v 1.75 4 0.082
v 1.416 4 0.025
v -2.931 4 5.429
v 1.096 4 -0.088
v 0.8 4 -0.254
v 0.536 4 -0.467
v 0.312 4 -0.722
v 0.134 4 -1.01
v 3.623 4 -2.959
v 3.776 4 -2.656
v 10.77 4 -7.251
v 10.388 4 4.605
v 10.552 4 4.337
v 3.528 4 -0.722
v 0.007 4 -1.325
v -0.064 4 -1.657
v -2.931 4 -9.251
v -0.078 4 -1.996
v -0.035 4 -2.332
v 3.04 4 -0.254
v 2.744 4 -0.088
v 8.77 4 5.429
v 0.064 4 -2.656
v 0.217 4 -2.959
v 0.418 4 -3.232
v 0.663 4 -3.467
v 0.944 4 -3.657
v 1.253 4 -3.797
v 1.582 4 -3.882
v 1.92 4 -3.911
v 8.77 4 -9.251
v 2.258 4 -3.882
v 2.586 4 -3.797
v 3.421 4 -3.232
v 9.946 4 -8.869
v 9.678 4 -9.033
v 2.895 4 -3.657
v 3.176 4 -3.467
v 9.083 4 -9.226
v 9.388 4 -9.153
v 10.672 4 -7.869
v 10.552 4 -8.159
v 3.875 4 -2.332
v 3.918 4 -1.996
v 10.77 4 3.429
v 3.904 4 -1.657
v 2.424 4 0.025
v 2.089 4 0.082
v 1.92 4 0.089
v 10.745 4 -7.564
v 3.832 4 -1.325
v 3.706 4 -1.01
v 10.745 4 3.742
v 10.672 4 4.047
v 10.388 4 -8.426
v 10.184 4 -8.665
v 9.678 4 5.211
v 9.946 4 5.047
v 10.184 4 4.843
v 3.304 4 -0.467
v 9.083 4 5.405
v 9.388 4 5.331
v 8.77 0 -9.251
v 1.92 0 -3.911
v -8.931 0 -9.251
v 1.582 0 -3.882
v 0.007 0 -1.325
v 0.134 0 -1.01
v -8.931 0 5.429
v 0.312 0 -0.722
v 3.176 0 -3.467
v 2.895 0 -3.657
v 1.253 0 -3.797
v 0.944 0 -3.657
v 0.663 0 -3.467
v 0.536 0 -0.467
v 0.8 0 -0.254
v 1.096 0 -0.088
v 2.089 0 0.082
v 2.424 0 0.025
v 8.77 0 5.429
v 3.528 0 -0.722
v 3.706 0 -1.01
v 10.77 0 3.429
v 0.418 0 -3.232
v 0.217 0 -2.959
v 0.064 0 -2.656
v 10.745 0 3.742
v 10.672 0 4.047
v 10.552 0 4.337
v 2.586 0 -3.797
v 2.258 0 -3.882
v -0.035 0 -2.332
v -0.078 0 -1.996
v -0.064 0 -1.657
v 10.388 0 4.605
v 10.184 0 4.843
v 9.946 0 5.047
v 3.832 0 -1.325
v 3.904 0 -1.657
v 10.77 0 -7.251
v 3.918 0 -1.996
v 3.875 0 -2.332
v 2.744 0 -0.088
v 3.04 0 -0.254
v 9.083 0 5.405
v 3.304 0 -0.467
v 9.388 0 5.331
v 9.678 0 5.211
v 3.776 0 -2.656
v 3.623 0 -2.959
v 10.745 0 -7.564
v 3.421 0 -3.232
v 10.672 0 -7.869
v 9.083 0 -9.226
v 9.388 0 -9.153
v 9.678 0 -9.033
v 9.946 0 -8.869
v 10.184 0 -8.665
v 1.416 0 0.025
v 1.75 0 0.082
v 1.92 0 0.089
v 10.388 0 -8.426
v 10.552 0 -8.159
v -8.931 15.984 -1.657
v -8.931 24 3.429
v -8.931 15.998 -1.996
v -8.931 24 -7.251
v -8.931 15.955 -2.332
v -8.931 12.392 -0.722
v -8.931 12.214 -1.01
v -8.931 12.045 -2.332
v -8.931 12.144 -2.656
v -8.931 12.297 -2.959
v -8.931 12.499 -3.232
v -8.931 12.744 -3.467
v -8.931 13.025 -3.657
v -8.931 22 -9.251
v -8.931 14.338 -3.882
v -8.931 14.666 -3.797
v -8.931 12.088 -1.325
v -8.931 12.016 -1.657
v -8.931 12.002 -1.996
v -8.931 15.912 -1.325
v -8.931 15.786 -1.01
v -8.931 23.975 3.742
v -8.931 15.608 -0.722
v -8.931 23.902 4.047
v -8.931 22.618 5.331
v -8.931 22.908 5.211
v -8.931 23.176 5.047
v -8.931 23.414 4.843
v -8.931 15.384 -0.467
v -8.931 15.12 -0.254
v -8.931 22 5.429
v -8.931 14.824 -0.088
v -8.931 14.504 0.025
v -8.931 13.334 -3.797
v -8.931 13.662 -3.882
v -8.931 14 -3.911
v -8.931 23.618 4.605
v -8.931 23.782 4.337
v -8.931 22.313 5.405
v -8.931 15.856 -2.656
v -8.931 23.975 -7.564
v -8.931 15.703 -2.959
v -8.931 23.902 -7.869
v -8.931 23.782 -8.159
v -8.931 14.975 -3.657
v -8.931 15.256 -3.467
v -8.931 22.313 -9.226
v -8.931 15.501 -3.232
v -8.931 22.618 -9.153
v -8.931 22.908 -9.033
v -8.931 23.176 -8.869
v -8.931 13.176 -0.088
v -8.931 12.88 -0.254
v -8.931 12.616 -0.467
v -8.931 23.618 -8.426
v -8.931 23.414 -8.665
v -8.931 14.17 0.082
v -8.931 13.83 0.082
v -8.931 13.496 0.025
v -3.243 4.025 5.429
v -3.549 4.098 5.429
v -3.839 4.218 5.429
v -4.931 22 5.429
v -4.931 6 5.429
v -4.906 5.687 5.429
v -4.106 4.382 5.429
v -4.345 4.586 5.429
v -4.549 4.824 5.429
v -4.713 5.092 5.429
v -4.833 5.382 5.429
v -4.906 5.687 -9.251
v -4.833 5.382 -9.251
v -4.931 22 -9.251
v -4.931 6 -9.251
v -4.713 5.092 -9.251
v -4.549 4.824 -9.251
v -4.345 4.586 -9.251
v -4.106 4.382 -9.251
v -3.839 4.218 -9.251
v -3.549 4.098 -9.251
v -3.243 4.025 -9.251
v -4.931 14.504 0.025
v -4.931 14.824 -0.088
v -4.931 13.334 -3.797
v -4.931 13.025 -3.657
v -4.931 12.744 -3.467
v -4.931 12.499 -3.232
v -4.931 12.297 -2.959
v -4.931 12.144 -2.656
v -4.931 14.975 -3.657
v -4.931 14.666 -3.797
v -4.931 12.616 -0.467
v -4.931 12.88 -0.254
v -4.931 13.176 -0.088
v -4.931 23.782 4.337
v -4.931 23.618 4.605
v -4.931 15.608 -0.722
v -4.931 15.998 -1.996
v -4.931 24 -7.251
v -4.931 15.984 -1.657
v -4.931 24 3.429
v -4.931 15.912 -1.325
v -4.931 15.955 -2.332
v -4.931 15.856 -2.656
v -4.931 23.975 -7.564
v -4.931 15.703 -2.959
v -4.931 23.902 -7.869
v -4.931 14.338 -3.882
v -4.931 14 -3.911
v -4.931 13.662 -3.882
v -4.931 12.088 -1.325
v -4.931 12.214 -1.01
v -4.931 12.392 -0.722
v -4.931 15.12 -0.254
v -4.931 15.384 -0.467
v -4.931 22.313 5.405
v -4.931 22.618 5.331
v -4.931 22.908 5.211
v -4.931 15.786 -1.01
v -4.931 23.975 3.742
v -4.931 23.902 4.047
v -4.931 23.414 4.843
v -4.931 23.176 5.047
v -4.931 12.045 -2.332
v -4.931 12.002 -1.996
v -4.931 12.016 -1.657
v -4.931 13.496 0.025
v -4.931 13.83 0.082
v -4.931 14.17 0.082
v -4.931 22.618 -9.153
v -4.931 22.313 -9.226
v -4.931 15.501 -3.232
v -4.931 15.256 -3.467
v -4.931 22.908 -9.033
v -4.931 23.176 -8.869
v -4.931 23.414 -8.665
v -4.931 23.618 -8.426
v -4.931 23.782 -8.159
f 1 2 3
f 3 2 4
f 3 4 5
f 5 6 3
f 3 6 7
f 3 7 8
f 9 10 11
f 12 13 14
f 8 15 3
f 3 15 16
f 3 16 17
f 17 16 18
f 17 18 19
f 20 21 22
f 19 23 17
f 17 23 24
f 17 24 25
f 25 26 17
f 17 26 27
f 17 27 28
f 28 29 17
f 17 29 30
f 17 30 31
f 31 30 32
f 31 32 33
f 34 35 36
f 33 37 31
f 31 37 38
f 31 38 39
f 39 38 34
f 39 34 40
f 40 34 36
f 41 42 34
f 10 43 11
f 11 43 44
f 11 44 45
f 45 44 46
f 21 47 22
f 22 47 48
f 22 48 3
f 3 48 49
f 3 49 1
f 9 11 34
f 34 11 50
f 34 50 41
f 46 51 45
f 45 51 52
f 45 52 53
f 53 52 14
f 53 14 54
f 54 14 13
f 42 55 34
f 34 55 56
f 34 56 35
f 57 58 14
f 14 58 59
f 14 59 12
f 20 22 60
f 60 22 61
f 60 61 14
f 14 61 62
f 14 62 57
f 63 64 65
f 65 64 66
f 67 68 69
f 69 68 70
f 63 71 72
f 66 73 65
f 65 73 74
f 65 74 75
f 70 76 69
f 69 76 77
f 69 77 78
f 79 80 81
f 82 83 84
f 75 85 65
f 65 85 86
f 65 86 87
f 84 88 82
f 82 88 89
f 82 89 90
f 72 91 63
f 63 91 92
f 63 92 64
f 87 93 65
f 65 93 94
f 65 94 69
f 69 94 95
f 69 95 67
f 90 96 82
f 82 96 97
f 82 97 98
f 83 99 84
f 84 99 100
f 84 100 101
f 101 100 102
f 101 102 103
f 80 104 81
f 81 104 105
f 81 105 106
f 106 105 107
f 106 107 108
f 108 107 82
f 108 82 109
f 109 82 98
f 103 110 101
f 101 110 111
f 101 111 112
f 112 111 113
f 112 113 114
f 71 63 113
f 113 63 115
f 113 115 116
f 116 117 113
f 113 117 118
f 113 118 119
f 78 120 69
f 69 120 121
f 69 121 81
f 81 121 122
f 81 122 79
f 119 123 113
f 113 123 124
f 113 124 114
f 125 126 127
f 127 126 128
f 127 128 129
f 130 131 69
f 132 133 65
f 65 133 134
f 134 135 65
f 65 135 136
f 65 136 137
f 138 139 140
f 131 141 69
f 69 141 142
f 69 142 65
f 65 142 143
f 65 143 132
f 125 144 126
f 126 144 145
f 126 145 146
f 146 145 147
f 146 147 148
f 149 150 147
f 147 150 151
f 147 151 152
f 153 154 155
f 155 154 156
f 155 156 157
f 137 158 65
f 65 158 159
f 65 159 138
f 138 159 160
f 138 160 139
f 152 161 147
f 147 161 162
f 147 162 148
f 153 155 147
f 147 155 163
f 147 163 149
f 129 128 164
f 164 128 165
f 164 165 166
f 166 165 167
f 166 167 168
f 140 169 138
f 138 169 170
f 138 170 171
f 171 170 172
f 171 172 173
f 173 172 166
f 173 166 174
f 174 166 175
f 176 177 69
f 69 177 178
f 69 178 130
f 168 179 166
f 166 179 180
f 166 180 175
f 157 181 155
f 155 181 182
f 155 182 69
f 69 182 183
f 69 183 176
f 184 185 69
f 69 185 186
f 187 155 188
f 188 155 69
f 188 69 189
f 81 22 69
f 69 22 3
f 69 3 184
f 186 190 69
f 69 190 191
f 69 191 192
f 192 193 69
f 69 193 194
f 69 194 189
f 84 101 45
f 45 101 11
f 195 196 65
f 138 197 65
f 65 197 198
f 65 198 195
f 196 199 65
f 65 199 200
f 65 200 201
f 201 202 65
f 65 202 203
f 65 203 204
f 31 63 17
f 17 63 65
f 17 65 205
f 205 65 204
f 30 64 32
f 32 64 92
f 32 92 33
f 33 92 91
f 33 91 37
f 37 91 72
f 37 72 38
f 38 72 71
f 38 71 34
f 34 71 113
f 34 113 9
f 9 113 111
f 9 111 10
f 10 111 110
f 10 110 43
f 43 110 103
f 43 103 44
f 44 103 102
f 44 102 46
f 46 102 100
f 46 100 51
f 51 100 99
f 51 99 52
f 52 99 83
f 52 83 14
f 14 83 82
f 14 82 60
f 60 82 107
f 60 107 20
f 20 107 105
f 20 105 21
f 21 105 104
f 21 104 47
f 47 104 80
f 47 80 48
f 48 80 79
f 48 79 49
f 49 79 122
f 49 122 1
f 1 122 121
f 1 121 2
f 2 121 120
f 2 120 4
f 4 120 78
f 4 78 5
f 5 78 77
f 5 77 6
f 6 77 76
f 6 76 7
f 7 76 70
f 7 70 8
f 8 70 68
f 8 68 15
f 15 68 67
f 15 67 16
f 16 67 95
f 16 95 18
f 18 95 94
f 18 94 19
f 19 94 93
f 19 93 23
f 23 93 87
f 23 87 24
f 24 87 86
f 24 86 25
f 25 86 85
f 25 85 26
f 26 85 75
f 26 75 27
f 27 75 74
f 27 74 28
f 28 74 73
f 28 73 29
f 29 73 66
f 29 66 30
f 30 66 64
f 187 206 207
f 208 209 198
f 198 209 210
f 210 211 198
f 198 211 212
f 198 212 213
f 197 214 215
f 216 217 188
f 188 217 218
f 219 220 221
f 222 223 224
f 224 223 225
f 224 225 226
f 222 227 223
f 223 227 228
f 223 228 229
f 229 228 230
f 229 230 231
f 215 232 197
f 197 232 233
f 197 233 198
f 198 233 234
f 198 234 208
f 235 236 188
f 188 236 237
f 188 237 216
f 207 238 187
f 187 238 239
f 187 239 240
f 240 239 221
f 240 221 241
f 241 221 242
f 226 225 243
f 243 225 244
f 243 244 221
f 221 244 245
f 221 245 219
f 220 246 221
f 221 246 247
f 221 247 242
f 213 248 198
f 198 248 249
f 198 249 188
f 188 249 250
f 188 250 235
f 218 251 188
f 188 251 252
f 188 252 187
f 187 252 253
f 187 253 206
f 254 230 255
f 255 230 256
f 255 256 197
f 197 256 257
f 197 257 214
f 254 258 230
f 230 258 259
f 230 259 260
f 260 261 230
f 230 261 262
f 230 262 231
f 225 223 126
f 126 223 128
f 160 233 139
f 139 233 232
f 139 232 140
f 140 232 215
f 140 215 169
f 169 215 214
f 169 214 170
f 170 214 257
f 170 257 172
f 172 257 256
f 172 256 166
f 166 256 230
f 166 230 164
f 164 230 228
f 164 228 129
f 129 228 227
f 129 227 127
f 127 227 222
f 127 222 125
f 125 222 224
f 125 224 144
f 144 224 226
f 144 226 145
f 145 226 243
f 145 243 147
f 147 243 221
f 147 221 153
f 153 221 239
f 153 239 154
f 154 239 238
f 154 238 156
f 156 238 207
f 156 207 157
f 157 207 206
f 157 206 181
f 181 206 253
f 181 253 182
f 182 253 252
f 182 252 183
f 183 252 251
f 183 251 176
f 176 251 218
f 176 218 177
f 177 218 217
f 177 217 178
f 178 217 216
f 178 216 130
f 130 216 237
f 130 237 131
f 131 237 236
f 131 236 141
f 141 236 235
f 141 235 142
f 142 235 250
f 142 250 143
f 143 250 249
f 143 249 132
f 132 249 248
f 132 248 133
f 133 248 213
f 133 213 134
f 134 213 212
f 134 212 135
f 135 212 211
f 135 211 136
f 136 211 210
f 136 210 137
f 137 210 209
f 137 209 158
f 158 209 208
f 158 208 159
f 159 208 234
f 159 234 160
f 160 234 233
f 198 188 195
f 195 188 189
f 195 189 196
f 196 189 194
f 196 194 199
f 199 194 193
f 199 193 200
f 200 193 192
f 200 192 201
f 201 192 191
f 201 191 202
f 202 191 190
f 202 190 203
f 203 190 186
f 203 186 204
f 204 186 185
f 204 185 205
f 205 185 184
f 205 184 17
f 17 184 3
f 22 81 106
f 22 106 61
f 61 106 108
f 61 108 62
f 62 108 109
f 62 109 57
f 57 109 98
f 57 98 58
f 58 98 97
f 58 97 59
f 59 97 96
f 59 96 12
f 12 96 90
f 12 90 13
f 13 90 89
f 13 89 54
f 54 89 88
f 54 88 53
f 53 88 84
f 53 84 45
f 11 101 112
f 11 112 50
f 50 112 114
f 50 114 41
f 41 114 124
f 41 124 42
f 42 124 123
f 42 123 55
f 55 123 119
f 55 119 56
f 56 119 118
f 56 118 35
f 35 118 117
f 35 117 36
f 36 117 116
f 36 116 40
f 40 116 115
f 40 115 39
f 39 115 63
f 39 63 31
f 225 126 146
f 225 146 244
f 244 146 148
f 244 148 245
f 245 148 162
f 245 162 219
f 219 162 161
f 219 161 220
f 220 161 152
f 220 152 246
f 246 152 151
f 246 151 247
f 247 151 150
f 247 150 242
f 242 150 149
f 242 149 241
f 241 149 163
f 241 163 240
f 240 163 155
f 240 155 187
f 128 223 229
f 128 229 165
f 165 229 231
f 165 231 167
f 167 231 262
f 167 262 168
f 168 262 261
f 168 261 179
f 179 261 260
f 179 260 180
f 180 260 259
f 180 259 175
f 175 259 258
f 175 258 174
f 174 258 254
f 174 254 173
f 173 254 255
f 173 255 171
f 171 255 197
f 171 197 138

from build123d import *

# Parameters (mm, degrees)
SKETCH3_W           = 19.70074215
SKETCH3_H           = 14.68
SKETCH3_R           = 2
BOSS_EXTRUDE2_DEPTH = 4
SKETCH5_W           = 4
SKETCH5_H           = 14.68
BOSS_EXTRUDE3_DEPTH = 20
SKETCH6_R           = 2
CUT_EXTRUDE1_DEPTH  = 10
FILLET1_R           = 2


with BuildPart() as part:
    # Sketch3 → Boss-Extrude2 (new body)
    with BuildSketch(Plane(origin=(0, 0, 0), x_dir=(1, 0, 0), z_dir=(0, 1, 0))):
        with Locations((0.919743343, 1.910780827)):
            Rectangle(SKETCH3_W, SKETCH3_H)
        with Locations((1.919743345, 1.910780827)):
            Circle(SKETCH3_R, mode=Mode.SUBTRACT)
    extrude(amount=BOSS_EXTRUDE2_DEPTH)

    # Sketch5 → Boss-Extrude3 (add)
    with BuildSketch(Plane(origin=(0, 4, 0), x_dir=(1, 0, 0), z_dir=(0, 1, 0))):
        with Locations((-6.930627732, 1.910780827)):
            Rectangle(SKETCH5_W, SKETCH5_H)
    extrude(amount=BOSS_EXTRUDE3_DEPTH)

    # Sketch6 → Cut-Extrude1 (cut)
    with BuildSketch(Plane(origin=(-4.930627732, 0, 0), x_dir=(0, 0, -1), z_dir=(1, 0, 0))):
        with Locations((1.910780827, 14)):
            Circle(SKETCH6_R)
    extrude(amount=-CUT_EXTRUDE1_DEPTH, mode=Mode.SUBTRACT)

    # Fillet1
    fillet1_edges = [part.edges().sort_by_distance(p)[0] for p in [
        (-4.930627732, 4, -1.910780827),
        (-6.930627732, 24, 5.429219173),
        (-6.930627732, 24, -9.250780827),
        (10.770114418, 2, -9.250780827),
        (10.770114418, 2, 5.429219173),
    ]]
    fillet(fillet1_edges, radius=FILLET1_R)


solid = part.part
